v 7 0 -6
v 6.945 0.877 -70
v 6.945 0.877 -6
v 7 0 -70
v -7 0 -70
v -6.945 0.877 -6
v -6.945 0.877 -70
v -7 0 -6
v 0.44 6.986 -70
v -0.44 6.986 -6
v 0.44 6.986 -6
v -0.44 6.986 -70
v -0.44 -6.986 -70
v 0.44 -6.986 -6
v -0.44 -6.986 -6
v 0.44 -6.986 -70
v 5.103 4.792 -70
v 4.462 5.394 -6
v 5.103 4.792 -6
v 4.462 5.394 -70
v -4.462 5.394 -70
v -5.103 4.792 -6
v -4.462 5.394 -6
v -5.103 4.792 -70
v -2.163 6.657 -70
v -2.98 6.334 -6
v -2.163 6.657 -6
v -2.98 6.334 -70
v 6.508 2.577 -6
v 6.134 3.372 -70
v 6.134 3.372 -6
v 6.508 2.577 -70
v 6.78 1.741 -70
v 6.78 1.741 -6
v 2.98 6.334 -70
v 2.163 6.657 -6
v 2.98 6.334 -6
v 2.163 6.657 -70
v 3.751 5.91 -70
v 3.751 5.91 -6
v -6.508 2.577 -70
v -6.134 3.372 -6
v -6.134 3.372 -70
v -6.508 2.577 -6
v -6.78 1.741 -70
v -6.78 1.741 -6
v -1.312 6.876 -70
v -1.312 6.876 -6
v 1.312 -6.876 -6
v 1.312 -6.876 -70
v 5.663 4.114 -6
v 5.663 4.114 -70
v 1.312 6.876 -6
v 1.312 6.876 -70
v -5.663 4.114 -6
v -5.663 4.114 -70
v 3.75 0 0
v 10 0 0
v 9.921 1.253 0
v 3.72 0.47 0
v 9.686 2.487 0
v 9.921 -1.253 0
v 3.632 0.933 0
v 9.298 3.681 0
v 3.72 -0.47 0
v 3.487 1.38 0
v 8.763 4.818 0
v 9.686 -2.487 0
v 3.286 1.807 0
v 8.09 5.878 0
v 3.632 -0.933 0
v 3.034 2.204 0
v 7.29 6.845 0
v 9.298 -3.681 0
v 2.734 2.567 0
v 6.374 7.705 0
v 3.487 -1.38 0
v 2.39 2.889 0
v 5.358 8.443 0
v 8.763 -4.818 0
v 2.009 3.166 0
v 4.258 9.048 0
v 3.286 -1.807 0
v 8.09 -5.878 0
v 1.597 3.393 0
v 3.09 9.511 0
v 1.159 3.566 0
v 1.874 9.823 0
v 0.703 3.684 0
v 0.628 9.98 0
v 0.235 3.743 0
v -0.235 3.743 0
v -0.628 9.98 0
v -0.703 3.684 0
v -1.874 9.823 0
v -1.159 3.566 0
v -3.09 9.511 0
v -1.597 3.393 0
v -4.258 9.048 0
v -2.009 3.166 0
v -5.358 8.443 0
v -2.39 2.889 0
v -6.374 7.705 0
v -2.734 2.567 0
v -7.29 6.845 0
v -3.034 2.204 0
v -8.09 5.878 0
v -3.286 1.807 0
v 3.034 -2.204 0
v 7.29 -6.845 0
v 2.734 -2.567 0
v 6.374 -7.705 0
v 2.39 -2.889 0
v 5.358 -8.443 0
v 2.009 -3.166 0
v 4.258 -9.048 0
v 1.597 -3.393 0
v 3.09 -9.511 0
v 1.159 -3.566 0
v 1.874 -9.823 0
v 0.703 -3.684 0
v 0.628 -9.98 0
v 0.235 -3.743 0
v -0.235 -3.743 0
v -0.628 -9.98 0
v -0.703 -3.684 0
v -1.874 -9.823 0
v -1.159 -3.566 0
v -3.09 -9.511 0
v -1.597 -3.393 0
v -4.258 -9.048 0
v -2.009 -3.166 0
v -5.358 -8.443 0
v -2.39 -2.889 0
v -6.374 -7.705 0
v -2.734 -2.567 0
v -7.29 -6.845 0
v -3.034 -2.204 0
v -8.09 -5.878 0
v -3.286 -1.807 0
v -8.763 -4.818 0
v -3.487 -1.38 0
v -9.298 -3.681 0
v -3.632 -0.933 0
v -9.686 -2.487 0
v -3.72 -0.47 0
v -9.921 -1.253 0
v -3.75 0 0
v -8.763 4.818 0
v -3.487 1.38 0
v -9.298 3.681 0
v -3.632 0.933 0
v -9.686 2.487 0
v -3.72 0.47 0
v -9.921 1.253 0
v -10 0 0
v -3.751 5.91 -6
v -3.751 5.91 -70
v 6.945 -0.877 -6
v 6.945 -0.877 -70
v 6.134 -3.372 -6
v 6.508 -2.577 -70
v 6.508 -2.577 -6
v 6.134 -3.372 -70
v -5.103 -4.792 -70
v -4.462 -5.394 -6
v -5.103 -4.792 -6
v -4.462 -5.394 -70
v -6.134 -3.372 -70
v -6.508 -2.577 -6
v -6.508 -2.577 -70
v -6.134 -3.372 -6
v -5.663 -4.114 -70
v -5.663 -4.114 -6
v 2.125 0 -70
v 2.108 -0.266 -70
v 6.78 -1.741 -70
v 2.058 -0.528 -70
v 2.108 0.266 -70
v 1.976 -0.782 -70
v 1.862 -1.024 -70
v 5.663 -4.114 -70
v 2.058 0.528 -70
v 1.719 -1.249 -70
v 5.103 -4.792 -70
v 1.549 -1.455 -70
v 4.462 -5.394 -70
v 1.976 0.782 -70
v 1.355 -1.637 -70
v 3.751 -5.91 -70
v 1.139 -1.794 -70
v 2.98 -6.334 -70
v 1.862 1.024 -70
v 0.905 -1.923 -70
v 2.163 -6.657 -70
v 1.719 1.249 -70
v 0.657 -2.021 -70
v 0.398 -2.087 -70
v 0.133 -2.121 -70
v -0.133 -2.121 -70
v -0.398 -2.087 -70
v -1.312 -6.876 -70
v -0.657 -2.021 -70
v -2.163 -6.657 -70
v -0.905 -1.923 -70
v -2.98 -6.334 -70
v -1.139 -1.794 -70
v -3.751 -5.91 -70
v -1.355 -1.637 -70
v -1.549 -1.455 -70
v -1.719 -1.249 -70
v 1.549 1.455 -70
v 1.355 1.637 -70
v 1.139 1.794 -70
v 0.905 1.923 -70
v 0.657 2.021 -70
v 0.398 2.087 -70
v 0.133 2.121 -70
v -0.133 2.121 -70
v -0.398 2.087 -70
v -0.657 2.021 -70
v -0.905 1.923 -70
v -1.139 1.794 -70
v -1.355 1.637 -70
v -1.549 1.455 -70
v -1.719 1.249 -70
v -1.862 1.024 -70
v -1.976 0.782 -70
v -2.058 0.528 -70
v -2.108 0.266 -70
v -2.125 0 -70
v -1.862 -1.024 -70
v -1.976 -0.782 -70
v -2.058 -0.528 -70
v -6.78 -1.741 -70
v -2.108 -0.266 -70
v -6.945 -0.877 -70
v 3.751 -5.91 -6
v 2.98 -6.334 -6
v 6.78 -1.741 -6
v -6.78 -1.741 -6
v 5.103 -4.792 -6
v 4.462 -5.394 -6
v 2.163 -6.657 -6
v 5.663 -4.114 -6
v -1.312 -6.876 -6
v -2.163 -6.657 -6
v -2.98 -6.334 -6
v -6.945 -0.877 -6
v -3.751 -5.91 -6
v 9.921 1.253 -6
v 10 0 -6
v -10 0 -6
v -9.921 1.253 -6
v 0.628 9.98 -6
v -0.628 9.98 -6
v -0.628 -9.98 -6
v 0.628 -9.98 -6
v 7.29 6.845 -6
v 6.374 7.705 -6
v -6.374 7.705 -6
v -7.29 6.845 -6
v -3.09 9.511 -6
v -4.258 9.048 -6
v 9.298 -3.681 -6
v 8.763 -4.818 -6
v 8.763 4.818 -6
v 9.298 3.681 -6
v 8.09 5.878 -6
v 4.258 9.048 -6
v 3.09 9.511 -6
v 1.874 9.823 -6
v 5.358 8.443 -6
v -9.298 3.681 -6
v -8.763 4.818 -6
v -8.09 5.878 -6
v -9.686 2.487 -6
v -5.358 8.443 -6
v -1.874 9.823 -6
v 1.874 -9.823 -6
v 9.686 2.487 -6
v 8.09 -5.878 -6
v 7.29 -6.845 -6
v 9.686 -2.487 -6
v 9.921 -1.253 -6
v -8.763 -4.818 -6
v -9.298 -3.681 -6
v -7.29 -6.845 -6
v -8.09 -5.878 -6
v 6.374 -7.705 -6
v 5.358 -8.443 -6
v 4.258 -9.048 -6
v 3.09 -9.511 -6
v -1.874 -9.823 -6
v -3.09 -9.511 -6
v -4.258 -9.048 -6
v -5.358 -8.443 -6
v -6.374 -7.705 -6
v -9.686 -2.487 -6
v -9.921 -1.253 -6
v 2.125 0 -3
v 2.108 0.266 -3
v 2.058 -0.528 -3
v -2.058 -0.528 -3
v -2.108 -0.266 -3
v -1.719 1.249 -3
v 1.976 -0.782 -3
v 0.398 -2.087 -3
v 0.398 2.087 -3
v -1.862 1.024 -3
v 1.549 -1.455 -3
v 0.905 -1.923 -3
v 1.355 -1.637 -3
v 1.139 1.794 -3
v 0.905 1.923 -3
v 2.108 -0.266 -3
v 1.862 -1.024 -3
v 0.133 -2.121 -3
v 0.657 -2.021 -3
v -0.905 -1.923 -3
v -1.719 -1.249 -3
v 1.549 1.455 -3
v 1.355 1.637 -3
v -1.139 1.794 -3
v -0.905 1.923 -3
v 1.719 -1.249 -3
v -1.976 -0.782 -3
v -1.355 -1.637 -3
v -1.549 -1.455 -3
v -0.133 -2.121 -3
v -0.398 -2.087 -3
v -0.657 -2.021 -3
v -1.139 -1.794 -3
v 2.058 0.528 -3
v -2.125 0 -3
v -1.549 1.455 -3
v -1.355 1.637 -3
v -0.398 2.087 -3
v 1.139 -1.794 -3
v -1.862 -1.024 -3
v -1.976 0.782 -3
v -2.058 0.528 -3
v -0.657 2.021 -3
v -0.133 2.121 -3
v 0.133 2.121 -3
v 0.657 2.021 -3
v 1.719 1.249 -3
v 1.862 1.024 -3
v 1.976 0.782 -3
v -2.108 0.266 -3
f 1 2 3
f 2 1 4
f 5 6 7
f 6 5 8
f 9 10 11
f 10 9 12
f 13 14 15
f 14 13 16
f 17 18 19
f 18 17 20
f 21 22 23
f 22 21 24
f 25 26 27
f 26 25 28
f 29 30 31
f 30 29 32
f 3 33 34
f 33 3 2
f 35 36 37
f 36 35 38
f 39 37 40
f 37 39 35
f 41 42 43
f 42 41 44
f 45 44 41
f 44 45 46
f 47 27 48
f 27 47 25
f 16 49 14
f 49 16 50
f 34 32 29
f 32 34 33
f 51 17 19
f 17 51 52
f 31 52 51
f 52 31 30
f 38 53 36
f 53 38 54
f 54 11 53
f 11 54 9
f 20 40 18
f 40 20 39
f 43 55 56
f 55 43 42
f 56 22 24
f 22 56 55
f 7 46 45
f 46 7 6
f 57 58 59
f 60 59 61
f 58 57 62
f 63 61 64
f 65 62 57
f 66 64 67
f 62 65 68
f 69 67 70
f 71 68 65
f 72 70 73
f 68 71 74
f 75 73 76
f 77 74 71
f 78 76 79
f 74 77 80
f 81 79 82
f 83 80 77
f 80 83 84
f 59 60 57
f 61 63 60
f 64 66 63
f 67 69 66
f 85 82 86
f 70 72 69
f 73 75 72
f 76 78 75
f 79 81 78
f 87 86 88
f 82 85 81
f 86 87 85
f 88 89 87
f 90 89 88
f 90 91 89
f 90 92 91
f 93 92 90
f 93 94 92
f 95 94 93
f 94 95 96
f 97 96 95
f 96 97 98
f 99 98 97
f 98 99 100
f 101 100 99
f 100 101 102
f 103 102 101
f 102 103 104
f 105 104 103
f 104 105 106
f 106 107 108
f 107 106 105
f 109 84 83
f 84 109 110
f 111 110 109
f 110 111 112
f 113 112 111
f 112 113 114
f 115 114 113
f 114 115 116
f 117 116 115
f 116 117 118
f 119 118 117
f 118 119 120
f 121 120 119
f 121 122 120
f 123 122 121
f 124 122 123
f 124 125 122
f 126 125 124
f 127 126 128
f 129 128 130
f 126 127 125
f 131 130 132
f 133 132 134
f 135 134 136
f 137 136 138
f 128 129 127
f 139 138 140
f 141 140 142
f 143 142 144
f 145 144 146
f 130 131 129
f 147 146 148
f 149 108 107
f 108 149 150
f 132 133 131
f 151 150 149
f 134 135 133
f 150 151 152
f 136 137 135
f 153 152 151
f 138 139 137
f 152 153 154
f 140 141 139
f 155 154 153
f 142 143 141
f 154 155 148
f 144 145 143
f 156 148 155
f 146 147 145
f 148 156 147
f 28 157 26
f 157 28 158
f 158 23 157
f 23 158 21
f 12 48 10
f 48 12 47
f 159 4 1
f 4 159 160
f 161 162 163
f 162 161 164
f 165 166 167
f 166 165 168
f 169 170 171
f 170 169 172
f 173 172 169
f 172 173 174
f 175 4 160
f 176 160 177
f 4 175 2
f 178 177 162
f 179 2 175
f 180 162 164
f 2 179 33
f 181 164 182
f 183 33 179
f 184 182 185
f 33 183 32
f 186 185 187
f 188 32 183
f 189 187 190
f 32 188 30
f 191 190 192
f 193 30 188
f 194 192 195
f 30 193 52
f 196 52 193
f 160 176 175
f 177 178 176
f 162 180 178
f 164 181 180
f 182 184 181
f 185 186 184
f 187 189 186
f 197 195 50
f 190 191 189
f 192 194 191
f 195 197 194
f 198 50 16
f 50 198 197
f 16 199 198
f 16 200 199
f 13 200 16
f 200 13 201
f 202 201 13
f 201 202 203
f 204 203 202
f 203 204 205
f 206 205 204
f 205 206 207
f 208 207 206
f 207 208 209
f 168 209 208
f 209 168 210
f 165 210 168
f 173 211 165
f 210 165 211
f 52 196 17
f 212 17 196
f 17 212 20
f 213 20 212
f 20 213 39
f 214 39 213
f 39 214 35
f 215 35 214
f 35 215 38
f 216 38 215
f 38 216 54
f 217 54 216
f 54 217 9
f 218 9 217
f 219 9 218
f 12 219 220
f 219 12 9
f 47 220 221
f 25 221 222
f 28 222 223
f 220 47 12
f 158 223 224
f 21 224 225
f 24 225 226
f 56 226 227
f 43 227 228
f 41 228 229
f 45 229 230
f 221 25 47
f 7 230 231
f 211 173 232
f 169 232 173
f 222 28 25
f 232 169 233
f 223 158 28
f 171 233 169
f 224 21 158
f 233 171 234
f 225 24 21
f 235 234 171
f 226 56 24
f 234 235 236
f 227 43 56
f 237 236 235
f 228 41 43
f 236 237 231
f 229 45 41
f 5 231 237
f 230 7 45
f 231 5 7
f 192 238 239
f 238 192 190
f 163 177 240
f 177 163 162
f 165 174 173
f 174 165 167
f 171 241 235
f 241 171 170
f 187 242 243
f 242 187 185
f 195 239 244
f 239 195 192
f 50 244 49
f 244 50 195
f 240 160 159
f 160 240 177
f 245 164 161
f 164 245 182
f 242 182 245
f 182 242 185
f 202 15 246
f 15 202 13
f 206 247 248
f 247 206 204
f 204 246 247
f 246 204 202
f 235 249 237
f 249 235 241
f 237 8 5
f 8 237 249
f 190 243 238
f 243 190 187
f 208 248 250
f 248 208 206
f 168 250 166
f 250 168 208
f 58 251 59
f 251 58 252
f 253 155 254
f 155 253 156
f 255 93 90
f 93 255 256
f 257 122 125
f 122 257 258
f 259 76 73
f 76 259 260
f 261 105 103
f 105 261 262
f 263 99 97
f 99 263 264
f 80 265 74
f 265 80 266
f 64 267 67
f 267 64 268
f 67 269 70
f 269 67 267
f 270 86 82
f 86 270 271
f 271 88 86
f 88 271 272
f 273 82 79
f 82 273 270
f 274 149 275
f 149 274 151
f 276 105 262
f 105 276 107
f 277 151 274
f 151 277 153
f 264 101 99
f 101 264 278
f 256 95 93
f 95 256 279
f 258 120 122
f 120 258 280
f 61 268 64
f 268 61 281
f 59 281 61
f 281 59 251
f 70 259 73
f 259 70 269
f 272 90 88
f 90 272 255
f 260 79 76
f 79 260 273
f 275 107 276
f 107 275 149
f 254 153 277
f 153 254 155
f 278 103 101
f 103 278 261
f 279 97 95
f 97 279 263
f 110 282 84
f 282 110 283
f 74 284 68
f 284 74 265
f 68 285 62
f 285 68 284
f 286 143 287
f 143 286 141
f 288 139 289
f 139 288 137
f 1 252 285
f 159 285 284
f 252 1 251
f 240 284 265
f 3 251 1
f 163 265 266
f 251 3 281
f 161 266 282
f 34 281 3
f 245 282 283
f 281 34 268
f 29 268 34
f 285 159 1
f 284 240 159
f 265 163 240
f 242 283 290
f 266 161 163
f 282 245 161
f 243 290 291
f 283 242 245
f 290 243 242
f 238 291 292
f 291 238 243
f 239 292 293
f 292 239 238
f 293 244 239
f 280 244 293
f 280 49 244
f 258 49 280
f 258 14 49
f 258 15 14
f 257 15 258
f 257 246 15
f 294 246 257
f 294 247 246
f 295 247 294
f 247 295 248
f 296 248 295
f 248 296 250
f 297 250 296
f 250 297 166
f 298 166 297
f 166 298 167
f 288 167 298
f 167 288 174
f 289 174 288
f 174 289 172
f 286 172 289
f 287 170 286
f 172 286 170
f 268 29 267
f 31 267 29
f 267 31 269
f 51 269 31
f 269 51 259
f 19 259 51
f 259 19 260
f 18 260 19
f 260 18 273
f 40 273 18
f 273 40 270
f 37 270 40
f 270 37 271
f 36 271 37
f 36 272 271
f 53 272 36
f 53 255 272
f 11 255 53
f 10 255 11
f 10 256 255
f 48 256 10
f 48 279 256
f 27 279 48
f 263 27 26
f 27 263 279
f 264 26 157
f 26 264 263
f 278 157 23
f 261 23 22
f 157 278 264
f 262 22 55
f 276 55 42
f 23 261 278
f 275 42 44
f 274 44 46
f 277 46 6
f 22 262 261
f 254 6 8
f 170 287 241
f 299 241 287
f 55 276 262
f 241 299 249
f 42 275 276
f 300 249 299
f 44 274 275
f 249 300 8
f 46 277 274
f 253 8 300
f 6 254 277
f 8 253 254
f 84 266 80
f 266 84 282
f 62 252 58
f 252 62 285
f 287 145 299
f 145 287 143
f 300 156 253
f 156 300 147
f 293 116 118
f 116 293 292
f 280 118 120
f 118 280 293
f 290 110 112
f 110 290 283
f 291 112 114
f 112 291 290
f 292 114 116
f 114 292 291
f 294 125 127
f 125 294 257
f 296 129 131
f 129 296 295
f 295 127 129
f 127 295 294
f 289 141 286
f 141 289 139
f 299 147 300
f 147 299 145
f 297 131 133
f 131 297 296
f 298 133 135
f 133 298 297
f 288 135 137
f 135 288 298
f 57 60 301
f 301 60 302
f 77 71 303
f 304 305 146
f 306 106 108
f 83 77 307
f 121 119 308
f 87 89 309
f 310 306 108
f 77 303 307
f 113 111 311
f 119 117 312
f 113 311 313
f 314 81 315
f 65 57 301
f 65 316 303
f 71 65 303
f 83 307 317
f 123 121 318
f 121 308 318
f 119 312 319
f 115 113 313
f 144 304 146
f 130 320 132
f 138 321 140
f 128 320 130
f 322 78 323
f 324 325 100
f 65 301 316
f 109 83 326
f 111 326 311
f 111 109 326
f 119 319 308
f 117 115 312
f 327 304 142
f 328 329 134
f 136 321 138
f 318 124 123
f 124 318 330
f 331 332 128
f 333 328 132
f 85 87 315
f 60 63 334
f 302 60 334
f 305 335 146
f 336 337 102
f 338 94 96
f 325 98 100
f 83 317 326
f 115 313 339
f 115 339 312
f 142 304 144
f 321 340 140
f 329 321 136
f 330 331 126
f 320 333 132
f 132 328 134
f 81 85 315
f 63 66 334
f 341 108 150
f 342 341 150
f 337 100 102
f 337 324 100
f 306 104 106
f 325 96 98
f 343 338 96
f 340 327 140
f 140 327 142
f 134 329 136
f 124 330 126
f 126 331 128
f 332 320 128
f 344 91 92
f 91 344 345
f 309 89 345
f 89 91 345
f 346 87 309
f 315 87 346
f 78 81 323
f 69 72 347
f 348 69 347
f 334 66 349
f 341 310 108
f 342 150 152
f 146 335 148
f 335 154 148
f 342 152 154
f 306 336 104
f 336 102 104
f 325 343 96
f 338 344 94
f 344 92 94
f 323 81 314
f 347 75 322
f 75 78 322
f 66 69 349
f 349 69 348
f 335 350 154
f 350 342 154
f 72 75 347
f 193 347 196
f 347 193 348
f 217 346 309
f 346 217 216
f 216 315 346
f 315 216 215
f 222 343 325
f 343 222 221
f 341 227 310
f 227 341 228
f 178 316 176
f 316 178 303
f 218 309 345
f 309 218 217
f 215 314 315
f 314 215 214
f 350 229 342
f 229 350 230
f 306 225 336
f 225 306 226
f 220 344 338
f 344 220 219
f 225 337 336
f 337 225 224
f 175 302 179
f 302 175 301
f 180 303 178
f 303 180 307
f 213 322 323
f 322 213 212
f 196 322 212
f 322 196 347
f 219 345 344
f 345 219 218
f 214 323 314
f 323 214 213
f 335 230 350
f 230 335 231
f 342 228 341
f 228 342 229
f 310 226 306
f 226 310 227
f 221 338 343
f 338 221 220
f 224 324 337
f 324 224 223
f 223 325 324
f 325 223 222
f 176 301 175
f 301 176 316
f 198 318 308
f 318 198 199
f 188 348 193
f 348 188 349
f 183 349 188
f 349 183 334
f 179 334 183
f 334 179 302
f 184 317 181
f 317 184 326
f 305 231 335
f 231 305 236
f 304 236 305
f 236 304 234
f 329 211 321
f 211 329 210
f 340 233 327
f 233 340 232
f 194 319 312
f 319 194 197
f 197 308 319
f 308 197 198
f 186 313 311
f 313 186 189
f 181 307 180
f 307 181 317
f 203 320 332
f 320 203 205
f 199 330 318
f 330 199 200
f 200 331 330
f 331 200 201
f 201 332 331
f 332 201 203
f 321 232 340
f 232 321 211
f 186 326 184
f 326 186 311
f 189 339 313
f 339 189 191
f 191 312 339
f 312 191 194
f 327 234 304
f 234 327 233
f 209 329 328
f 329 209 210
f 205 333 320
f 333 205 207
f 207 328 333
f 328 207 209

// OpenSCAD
$fn = 50;


difference() {
	union() {
		translate(v = [0, 0, -70.0000000000]) {
			cylinder(h = 70, r = 7.0000000000);
		}
		translate(v = [0, 0, -6.0000000000]) {
			cylinder(h = 6, r = 10.0000000000);
		}
	}
	union() {
		translate(v = [0, 0, 0]) {
			rotate(a = [0, 0, 0]) {
				difference() {
					union() {
						#translate(v = [0, 0, -70.0000000000]) {
							cylinder(h = 70, r = 2.0000000000);
						}
						#translate(v = [0, 0, -3]) {
							cylinder(h = 3, r1 = 2.1250000000, r2 = 3.7500000000);
						}
						#translate(v = [0, 0, -70.0000000000]) {
							cylinder(h = 70, r = 2.1250000000);
						}
						#translate(v = [0, 0, -70.0000000000]) {
							cylinder(h = 70, r = 2.0000000000);
						}
					}
					union();
				}
			}
		}
	}
}
